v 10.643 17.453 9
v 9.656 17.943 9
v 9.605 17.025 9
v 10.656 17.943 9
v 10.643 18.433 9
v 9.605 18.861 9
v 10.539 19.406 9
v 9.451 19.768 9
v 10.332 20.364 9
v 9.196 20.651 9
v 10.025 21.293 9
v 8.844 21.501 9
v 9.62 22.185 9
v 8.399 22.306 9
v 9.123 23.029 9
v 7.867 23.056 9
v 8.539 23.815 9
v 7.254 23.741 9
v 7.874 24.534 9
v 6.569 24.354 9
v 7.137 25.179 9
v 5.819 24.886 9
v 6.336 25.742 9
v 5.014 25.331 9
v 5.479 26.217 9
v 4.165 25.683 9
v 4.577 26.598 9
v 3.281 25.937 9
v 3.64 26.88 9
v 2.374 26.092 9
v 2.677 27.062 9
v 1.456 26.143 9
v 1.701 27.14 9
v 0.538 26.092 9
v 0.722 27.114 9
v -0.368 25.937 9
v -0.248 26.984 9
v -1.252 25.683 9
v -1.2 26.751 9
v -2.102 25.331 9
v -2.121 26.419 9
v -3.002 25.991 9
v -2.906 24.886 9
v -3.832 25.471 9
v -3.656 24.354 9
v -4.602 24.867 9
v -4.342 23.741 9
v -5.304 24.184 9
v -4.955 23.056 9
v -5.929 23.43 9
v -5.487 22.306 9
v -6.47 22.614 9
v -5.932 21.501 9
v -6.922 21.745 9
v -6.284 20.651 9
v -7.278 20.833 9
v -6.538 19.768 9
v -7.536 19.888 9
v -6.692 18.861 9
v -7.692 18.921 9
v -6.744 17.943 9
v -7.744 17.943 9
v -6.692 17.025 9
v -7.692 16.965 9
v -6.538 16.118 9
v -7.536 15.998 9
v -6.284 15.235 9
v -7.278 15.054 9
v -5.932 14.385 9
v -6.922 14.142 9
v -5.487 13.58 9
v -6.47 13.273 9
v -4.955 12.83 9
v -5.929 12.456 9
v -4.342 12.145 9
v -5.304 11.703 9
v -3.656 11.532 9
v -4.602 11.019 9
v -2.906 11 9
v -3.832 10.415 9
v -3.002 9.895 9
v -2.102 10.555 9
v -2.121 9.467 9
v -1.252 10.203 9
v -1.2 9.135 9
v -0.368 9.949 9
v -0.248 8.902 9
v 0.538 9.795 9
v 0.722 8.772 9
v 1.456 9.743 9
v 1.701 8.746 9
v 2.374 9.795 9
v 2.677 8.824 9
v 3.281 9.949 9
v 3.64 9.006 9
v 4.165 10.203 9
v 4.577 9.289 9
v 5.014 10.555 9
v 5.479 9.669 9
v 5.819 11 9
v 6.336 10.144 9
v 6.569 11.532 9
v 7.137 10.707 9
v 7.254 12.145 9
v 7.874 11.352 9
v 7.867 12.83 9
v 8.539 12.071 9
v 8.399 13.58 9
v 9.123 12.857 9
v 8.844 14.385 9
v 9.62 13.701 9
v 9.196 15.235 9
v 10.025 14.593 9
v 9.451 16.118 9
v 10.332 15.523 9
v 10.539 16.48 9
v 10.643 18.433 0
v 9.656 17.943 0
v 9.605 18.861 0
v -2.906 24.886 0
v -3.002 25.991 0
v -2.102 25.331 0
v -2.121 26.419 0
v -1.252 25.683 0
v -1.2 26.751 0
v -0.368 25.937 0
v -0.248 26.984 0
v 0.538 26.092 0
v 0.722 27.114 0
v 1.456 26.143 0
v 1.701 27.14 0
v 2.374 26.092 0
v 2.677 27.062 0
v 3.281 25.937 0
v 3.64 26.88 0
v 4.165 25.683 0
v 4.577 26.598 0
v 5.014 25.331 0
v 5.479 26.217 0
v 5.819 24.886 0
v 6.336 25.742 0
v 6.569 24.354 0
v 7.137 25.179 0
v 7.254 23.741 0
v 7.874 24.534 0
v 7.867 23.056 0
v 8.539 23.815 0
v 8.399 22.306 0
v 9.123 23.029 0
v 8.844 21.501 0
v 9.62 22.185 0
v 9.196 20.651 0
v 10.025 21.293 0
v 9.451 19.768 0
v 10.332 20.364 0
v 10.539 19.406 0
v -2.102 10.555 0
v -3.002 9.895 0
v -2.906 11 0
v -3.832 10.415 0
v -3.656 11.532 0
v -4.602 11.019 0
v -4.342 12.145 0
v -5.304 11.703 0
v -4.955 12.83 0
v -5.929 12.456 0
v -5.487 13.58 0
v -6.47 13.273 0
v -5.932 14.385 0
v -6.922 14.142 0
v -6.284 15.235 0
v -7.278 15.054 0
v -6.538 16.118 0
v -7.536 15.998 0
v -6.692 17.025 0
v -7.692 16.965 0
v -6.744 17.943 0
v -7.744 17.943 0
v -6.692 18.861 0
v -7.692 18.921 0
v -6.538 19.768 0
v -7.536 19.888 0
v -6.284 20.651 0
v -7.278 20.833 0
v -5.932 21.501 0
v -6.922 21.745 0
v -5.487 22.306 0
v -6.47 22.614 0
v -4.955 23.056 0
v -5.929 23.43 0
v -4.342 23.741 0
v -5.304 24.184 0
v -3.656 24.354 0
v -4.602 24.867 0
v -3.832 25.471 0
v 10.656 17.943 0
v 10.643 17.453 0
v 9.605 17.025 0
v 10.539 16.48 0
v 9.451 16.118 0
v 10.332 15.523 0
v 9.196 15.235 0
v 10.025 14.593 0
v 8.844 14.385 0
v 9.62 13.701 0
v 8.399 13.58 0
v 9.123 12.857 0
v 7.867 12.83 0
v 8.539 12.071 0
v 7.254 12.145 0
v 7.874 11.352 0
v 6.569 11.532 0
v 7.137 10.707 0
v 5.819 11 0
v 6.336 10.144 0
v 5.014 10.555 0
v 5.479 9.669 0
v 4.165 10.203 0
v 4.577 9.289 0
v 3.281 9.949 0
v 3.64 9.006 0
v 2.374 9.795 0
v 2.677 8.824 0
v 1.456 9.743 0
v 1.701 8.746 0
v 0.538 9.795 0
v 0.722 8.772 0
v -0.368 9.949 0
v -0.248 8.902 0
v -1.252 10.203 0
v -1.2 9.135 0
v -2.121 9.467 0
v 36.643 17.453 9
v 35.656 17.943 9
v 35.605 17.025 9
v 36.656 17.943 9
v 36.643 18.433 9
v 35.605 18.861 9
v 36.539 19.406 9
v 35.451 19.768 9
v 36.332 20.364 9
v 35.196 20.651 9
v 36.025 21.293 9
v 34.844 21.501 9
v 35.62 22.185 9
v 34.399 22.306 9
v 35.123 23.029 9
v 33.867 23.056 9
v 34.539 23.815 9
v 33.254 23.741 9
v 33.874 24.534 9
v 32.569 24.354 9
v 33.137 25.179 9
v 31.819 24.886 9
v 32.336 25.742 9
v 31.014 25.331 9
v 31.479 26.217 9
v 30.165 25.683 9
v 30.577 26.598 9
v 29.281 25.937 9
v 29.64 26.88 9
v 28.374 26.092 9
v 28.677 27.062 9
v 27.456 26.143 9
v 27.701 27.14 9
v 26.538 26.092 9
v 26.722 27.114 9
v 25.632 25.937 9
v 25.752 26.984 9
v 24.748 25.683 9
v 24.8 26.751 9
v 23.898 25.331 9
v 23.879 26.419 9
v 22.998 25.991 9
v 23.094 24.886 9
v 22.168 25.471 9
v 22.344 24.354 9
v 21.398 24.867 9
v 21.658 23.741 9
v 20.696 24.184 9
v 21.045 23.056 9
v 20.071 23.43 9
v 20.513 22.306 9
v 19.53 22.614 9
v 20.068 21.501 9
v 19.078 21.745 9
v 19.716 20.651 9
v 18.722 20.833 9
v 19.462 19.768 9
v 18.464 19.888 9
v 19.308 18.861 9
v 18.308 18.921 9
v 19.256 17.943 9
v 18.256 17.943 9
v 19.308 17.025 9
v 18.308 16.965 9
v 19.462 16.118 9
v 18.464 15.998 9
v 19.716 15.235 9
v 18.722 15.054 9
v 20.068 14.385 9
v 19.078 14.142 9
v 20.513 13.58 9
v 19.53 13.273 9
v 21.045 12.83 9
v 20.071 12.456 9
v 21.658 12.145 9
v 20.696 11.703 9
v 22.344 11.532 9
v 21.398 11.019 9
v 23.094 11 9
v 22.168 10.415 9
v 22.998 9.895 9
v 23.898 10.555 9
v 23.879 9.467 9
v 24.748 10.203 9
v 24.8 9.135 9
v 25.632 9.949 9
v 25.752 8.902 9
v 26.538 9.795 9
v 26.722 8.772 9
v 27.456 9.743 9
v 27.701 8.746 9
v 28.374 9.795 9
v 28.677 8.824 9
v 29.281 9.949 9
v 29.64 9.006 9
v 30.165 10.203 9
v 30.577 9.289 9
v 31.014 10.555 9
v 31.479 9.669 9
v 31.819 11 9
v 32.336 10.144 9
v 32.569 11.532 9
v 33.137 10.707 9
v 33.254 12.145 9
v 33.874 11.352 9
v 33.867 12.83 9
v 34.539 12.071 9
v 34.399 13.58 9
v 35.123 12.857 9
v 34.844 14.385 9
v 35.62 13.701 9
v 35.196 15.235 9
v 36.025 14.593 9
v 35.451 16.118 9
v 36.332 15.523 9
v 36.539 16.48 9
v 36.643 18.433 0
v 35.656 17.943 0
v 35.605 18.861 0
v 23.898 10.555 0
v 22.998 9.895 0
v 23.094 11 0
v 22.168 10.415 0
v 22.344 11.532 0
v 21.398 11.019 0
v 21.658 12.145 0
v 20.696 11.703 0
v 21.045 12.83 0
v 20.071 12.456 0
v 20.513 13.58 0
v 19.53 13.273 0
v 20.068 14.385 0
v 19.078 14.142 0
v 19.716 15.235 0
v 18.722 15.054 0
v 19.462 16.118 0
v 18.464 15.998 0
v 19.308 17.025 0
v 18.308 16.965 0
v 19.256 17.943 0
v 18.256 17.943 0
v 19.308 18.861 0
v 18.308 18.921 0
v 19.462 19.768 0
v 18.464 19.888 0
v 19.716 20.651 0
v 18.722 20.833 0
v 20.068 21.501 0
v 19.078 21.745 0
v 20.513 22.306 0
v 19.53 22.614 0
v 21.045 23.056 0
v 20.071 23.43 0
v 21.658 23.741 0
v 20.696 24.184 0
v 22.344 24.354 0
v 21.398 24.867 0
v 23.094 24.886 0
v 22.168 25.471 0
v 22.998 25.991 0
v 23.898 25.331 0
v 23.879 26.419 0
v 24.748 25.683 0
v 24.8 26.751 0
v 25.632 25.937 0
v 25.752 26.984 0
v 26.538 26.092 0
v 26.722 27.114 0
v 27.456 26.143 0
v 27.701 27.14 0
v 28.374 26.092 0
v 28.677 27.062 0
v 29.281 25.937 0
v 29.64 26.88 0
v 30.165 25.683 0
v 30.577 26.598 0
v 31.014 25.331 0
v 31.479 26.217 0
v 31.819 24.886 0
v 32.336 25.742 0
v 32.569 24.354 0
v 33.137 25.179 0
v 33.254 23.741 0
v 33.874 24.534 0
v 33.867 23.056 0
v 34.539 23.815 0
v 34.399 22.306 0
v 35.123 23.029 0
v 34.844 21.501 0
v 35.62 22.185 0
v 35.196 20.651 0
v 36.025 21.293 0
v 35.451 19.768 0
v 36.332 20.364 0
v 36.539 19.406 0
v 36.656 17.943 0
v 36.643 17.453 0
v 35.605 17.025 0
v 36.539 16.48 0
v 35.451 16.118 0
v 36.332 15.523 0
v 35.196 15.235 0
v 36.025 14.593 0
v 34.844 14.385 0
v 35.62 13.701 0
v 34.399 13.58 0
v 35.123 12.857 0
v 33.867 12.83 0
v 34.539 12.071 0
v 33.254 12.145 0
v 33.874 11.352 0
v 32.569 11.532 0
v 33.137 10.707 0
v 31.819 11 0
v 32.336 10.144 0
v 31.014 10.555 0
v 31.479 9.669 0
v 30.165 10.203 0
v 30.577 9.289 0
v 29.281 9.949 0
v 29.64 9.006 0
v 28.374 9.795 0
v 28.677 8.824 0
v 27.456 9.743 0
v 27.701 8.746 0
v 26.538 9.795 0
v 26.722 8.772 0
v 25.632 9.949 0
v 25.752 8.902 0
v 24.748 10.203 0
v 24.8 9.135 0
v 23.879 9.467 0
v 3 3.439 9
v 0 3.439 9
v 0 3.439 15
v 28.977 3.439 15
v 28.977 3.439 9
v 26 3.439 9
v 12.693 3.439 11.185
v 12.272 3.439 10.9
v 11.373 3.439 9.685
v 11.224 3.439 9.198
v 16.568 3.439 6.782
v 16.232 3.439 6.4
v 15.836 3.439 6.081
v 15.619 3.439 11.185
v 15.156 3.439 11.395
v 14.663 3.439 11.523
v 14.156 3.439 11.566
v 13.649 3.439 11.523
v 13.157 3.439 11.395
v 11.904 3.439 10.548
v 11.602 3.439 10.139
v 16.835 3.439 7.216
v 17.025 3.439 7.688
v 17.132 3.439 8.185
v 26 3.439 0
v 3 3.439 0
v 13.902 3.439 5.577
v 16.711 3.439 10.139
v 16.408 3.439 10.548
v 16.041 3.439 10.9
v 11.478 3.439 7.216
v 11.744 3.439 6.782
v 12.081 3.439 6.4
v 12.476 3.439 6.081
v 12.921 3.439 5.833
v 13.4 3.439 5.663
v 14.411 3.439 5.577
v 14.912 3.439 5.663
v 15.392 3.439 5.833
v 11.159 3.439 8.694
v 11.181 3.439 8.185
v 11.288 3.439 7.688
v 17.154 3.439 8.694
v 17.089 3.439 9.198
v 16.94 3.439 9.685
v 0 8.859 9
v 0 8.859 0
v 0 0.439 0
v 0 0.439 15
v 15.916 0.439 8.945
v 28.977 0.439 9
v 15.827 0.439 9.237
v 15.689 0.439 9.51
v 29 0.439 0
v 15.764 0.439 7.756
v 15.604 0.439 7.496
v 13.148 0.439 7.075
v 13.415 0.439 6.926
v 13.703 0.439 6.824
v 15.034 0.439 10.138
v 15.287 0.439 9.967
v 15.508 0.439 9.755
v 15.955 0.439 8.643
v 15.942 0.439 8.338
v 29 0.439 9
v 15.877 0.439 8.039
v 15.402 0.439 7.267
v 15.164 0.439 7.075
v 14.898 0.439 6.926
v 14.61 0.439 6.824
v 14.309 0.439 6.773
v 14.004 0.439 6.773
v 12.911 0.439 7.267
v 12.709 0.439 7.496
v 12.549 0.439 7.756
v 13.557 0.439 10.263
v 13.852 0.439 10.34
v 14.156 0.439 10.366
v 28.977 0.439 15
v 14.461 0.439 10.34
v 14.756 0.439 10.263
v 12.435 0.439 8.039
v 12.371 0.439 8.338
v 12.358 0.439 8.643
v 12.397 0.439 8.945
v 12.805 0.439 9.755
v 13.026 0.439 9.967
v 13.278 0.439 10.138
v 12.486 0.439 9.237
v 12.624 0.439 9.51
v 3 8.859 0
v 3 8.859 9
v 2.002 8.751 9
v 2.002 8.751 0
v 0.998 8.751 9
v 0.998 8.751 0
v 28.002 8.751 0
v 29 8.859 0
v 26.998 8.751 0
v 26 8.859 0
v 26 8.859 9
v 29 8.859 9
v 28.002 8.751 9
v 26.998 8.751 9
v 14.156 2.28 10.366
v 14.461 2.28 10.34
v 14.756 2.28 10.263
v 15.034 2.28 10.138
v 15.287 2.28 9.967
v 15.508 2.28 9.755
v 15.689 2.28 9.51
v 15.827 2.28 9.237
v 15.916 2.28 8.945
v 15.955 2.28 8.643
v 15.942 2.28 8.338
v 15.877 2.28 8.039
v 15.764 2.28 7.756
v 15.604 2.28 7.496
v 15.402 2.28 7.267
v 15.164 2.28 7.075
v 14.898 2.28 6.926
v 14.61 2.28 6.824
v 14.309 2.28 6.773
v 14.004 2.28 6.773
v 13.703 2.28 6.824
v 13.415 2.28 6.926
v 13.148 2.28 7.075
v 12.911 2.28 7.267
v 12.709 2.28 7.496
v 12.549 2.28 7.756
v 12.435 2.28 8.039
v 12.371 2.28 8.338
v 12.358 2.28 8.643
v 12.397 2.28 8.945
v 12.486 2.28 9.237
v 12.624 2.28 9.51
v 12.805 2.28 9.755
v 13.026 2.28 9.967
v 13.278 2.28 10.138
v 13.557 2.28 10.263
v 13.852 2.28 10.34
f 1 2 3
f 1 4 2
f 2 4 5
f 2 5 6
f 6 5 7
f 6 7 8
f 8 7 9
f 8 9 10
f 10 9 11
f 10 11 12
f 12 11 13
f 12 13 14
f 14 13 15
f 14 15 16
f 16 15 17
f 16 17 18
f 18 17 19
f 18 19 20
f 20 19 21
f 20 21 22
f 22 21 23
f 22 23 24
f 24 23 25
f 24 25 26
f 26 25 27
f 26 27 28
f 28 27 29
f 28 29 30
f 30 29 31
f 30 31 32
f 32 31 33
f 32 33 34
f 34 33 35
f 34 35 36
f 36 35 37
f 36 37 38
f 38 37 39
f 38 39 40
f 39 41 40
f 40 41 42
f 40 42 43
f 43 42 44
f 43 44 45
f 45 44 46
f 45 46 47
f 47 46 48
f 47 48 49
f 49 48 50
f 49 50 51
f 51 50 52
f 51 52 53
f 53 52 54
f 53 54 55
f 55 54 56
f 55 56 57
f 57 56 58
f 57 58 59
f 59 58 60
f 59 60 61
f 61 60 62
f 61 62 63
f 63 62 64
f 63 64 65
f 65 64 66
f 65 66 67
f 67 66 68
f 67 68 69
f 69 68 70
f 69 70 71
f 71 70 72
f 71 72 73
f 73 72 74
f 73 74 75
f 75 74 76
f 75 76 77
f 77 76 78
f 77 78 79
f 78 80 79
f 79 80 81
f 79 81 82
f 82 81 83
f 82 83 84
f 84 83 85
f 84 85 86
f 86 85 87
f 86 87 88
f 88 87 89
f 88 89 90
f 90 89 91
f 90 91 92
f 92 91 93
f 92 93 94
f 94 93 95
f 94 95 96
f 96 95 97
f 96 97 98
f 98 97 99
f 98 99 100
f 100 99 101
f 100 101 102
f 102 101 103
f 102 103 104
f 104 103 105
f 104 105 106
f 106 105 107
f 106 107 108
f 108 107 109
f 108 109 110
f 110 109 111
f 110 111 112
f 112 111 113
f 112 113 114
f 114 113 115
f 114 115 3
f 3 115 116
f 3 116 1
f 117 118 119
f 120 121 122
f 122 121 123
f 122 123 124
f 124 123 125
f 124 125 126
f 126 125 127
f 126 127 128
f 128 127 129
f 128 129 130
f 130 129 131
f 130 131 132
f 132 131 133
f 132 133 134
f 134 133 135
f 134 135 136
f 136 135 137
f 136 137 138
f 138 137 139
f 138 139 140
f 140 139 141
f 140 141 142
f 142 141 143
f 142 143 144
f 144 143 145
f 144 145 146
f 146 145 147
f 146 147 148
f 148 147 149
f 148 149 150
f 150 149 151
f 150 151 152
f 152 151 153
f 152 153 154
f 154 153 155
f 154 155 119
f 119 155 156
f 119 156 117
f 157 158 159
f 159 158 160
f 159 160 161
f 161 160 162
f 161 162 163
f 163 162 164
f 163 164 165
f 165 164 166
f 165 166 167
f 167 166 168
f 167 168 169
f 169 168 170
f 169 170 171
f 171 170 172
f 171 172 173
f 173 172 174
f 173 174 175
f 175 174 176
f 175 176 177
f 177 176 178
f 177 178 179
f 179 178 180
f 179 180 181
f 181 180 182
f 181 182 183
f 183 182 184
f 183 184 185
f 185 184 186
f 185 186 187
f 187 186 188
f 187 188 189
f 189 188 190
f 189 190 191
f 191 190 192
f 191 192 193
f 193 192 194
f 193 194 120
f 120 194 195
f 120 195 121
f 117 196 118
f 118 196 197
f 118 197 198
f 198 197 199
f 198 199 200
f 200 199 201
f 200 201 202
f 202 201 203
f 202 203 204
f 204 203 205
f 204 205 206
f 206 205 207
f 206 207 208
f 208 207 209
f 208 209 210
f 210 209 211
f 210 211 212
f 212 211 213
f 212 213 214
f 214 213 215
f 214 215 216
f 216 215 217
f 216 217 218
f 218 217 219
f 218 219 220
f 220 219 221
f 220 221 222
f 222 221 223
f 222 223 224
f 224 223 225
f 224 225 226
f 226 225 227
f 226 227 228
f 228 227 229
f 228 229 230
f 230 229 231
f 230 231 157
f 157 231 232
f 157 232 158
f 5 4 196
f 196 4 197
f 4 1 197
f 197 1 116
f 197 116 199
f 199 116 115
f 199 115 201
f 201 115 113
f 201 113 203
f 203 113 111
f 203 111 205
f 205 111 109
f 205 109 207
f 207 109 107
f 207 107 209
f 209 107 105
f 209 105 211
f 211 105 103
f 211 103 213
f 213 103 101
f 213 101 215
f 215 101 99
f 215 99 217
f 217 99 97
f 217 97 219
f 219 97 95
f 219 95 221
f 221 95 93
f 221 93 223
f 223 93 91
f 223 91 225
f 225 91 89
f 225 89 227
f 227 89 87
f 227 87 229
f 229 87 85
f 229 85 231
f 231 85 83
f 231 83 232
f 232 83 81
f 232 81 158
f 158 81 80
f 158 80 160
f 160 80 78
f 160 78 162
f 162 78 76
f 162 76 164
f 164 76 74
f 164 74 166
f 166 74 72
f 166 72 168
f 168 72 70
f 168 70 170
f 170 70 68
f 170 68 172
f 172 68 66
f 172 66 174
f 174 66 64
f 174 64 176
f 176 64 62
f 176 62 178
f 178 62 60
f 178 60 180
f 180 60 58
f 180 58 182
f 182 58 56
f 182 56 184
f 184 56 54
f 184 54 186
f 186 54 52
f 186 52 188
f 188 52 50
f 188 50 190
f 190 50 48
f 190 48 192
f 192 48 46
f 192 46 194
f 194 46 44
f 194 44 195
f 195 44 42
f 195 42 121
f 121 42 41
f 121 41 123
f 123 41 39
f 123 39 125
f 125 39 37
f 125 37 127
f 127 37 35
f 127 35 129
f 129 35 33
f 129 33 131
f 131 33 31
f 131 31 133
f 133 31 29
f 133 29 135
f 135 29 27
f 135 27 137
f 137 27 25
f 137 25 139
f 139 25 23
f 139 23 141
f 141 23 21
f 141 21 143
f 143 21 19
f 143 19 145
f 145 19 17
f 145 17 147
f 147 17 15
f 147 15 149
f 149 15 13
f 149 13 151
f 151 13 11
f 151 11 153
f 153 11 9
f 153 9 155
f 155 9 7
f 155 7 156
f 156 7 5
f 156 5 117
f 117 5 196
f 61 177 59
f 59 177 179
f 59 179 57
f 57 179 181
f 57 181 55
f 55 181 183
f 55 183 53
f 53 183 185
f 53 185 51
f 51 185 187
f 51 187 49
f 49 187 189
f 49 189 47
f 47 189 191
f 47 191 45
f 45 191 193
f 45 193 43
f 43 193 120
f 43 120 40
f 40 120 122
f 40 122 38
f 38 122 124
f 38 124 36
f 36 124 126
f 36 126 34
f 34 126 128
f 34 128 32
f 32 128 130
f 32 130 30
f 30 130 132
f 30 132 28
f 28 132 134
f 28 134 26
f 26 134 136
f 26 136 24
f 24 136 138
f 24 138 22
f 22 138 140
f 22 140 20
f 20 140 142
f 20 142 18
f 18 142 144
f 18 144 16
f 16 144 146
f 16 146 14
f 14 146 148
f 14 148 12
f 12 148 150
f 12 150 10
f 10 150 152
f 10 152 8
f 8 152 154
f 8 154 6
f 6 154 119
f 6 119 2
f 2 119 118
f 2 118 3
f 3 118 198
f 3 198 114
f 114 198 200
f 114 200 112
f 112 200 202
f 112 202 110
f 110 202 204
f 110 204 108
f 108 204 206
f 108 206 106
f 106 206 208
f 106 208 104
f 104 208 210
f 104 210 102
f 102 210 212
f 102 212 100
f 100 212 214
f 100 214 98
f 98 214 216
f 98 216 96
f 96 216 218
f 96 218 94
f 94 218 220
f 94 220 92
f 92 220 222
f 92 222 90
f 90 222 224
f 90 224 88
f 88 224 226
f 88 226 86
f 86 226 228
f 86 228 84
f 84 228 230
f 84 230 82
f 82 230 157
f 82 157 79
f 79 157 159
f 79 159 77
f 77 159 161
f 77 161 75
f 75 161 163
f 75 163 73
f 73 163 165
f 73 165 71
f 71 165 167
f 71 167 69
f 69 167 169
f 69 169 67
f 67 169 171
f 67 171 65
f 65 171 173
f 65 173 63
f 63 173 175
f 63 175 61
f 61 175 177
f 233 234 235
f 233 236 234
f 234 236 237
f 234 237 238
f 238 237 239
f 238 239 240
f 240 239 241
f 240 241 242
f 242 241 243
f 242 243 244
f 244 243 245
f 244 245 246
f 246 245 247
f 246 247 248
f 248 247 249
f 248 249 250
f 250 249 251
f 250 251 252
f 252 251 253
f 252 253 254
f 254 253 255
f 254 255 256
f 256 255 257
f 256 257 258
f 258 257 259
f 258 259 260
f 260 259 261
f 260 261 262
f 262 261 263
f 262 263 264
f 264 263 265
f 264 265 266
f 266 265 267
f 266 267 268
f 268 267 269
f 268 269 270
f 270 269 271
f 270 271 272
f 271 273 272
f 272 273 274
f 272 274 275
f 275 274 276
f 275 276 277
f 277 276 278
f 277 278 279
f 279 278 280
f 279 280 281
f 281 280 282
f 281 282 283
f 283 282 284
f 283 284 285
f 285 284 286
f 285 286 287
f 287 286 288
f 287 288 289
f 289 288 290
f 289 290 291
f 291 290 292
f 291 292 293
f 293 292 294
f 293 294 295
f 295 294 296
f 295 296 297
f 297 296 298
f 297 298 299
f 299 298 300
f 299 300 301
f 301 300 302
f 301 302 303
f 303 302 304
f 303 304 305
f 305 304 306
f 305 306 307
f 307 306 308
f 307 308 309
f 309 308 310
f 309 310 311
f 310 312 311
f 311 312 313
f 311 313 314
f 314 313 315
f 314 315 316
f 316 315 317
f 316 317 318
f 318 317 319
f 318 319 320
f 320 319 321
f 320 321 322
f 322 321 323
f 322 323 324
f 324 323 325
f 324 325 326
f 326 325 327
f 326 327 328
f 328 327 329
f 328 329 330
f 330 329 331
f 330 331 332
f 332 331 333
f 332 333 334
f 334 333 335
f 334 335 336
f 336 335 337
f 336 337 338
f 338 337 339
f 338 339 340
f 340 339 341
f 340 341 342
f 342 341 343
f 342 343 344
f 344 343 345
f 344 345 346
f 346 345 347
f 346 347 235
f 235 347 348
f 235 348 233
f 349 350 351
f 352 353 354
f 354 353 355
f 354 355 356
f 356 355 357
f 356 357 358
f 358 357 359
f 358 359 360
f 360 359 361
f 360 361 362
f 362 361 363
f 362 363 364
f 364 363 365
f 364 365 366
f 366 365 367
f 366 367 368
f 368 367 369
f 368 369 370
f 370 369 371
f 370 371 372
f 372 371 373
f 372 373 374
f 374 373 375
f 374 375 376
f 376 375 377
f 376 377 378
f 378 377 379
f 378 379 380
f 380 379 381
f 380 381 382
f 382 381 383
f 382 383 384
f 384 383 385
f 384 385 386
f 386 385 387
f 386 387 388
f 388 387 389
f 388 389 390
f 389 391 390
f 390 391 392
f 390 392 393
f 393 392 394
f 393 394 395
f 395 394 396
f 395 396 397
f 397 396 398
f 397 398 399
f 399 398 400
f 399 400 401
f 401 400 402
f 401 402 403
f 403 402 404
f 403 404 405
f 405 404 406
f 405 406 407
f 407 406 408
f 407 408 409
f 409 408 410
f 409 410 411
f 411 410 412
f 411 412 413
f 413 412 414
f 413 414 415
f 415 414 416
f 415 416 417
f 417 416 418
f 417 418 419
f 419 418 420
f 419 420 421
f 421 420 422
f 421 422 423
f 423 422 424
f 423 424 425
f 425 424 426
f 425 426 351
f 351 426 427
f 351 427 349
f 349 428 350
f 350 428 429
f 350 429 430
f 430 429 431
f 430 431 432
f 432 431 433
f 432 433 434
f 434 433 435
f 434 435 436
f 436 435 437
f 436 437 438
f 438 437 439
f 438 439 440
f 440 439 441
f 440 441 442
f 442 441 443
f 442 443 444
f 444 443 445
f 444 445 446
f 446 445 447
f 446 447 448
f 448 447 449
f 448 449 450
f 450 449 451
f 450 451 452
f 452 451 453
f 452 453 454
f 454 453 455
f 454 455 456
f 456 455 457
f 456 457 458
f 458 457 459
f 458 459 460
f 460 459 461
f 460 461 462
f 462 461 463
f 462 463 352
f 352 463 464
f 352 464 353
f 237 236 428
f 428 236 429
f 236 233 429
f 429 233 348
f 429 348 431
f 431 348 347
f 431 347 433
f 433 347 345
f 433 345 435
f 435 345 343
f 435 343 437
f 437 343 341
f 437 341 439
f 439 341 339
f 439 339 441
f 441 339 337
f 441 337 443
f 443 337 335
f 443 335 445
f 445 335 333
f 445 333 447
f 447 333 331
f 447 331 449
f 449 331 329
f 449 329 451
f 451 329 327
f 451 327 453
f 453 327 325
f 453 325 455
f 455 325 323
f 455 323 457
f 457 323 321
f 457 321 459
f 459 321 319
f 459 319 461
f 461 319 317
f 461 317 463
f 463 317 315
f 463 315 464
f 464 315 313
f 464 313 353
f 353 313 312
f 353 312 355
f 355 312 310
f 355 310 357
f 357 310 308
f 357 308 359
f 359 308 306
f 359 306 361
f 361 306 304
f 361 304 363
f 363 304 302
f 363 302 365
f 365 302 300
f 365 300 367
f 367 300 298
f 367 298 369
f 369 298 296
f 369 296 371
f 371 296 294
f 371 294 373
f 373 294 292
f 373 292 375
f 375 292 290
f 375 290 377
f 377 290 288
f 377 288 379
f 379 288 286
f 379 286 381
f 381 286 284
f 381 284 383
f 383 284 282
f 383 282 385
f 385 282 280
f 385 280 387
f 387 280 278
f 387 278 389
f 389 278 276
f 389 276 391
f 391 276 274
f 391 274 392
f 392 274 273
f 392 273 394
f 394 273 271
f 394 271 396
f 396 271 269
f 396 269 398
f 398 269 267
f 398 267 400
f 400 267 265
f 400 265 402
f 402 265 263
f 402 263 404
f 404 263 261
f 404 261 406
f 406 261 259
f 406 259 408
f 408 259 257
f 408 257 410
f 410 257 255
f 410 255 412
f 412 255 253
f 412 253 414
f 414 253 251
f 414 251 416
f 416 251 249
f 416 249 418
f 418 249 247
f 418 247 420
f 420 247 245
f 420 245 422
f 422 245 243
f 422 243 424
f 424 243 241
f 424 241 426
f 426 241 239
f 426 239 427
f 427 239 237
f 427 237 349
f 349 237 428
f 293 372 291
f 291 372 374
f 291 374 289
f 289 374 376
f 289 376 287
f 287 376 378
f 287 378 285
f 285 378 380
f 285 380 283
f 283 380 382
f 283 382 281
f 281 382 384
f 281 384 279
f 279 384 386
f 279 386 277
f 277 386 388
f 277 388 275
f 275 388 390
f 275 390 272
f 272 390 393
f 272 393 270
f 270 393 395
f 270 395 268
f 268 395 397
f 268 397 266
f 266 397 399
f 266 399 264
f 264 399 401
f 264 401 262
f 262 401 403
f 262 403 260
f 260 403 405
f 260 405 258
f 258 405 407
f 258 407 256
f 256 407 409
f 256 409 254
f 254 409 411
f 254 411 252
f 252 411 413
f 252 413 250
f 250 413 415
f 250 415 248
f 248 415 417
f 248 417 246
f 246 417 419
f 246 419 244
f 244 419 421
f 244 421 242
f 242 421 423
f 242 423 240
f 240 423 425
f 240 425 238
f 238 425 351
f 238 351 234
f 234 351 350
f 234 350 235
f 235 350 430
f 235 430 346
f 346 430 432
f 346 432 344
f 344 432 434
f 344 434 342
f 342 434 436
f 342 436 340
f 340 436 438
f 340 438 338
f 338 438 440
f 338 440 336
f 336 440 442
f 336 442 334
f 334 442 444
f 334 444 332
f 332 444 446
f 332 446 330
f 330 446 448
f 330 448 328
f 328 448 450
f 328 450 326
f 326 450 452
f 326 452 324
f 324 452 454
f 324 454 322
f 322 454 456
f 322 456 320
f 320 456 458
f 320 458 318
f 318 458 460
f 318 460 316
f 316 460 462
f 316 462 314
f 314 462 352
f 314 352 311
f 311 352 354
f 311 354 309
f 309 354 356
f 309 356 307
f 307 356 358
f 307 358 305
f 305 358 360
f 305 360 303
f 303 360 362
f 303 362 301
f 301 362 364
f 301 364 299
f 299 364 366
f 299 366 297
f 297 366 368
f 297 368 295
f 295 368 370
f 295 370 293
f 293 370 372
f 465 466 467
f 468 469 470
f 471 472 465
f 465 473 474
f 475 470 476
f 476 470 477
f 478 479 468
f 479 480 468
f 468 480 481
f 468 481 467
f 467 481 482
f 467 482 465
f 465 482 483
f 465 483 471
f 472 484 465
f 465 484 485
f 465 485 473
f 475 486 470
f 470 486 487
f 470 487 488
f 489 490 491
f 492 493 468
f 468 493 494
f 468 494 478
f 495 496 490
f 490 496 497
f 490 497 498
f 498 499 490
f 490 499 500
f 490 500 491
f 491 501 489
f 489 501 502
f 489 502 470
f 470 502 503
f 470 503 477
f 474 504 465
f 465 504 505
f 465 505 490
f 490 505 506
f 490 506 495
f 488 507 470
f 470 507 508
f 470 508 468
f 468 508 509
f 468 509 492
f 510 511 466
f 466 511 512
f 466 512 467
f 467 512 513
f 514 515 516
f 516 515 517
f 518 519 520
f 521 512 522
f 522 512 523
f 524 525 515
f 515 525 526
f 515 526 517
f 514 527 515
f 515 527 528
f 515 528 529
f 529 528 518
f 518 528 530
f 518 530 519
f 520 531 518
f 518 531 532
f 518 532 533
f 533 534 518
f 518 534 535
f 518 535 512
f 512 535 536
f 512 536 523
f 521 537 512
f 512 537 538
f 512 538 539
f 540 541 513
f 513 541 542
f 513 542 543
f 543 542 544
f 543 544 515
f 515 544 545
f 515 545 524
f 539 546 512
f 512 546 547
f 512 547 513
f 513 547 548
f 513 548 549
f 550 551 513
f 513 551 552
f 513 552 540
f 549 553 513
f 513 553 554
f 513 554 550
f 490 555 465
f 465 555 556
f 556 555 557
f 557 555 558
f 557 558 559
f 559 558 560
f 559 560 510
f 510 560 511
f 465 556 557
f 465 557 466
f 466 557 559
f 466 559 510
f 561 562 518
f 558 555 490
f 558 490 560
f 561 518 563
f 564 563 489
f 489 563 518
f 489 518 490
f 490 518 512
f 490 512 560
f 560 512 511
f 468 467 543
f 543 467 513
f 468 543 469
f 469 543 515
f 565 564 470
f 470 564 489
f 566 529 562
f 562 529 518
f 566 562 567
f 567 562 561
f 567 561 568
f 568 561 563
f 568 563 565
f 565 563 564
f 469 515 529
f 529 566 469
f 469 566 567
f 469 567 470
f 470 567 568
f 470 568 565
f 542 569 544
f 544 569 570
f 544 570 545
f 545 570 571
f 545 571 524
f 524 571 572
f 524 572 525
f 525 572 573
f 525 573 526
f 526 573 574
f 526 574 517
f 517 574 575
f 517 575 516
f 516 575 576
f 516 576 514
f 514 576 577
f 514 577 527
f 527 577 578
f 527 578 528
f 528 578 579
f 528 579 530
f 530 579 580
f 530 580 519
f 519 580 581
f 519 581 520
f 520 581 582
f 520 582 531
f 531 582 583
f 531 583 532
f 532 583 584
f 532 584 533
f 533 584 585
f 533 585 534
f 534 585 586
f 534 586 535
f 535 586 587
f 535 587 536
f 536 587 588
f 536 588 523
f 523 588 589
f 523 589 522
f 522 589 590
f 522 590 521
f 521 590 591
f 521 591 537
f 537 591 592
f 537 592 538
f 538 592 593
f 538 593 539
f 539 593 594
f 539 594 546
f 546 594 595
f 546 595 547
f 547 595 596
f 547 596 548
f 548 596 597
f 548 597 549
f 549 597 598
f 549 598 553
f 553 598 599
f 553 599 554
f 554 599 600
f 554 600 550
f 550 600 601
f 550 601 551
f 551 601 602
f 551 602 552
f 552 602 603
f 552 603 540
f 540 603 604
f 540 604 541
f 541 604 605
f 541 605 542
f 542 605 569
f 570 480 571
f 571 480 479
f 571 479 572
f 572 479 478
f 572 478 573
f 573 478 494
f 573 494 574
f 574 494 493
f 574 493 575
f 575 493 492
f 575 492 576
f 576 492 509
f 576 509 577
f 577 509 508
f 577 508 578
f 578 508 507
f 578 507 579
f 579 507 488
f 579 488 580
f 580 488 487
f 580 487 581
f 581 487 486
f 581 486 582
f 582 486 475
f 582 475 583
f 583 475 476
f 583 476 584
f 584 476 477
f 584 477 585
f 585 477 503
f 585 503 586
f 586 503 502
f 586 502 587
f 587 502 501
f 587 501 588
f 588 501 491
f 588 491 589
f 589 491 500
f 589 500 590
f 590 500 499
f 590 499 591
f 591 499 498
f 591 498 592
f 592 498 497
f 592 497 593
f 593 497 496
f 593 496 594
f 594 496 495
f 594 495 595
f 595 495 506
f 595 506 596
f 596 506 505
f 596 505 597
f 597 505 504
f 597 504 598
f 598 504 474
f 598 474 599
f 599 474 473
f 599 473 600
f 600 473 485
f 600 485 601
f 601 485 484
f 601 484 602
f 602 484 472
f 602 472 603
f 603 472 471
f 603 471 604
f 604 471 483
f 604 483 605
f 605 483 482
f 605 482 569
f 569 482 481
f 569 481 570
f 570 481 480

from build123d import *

# Parameters (mm, degrees)
SKETCH1_R             = 9.2
SKETCH1_R_2           = 8.2
BOSS_EXTRUDE1_DEPTH   = 9
BOSS_EXTRUDE1_2_DEPTH = 9
BOSS_EXTRUDE2_DEPTH   = 9
BOSS_EXTRUDE3_DEPTH   = 9
SKETCH4_W             = 28.977386058
SKETCH4_H             = 15
BOSS_EXTRUDE4_DEPTH   = 3


with BuildPart() as part:
    # Sketch1 → Boss-Extrude1 (new body)
    with BuildSketch(Plane.XY):
        with Locations((1.456222439, 17.943073581)):
            Circle(SKETCH1_R)
        with Locations((1.456222439, 17.943073581)):
            Circle(SKETCH1_R_2, mode=Mode.SUBTRACT)
    extrude(amount=BOSS_EXTRUDE1_DEPTH)


with BuildPart() as body_2:
    # Sketch1 → Boss-Extrude1 2 (new body)
    with BuildSketch(Plane.XY):
        with Locations((27.456222439, 17.943073581)):
            Circle(SKETCH1_R)
        with Locations((27.456222439, 17.943073581)):
            Circle(SKETCH1_R_2, mode=Mode.SUBTRACT)
    extrude(amount=BOSS_EXTRUDE1_2_DEPTH)


with BuildPart() as body_3:
    # Sketch2 → Boss-Extrude2 (new body)
    with BuildSketch(Plane.XY):
        with BuildLine():
            Line((0, 0.439053754), (3, 0.439053754))
            Line((3, 0.439053754), (3, 8.859053754))
            ThreePointArc((3, 8.859053754), (1.5, 8.737343973), (0, 8.859053754))
            Line((0, 8.859053754), (0, 0.439053754))
        make_face()
    extrude(amount=BOSS_EXTRUDE2_DEPTH)



with BuildPart() as body_4:
    # Sketch3 → Boss-Extrude3 (new body)
    with BuildSketch(Plane.XY):
        with BuildLine():
            Line((26, 0.439053754), (29, 0.439053754))
            Line((29, 0.439053754), (29, 8.859053754))
            ThreePointArc((29, 8.859053754), (27.5, 8.737343973), (26, 8.859053754))
            Line((26, 8.859053754), (26, 0.439053754))
        make_face()
    extrude(amount=BOSS_EXTRUDE3_DEPTH)


with BuildPart() as body_3_1:
    add(body_3.part)

    add(body_4.part)  # Boss-Extrude4 merges body 4
    # Sketch4 → Boss-Extrude4 (add)
    with BuildSketch(Plane(origin=(0, 0.439053754, 0), x_dir=(-1, 0, 0), z_dir=(0, -1, 0))):
        with Locations((-14.488693029, -7.5)):
            Rectangle(SKETCH4_W, SKETCH4_H)
    extrude(amount=-BOSS_EXTRUDE4_DEPTH)

    # Sketch5 → Avellanado para tornillo con cabeza avellanada en cruz de M31 (revolve, cut)
    with BuildSketch(Plane(origin=(14.156348597, 3.439053754, 8.566218105), x_dir=(0, 0, 1), z_dir=(1, 0, 0))):
        Polygon((0, 0), (0, 11.081549114), (1.8, 10), (1.8, 1.15882653), (3, 0), align=None)
    revolve(axis=Axis((14.156348597, 9.789053754, 8.566218105), (0, -1, 0)), mode=Mode.SUBTRACT)


solid = Compound([part.part, body_2.part, body_3_1.part])
